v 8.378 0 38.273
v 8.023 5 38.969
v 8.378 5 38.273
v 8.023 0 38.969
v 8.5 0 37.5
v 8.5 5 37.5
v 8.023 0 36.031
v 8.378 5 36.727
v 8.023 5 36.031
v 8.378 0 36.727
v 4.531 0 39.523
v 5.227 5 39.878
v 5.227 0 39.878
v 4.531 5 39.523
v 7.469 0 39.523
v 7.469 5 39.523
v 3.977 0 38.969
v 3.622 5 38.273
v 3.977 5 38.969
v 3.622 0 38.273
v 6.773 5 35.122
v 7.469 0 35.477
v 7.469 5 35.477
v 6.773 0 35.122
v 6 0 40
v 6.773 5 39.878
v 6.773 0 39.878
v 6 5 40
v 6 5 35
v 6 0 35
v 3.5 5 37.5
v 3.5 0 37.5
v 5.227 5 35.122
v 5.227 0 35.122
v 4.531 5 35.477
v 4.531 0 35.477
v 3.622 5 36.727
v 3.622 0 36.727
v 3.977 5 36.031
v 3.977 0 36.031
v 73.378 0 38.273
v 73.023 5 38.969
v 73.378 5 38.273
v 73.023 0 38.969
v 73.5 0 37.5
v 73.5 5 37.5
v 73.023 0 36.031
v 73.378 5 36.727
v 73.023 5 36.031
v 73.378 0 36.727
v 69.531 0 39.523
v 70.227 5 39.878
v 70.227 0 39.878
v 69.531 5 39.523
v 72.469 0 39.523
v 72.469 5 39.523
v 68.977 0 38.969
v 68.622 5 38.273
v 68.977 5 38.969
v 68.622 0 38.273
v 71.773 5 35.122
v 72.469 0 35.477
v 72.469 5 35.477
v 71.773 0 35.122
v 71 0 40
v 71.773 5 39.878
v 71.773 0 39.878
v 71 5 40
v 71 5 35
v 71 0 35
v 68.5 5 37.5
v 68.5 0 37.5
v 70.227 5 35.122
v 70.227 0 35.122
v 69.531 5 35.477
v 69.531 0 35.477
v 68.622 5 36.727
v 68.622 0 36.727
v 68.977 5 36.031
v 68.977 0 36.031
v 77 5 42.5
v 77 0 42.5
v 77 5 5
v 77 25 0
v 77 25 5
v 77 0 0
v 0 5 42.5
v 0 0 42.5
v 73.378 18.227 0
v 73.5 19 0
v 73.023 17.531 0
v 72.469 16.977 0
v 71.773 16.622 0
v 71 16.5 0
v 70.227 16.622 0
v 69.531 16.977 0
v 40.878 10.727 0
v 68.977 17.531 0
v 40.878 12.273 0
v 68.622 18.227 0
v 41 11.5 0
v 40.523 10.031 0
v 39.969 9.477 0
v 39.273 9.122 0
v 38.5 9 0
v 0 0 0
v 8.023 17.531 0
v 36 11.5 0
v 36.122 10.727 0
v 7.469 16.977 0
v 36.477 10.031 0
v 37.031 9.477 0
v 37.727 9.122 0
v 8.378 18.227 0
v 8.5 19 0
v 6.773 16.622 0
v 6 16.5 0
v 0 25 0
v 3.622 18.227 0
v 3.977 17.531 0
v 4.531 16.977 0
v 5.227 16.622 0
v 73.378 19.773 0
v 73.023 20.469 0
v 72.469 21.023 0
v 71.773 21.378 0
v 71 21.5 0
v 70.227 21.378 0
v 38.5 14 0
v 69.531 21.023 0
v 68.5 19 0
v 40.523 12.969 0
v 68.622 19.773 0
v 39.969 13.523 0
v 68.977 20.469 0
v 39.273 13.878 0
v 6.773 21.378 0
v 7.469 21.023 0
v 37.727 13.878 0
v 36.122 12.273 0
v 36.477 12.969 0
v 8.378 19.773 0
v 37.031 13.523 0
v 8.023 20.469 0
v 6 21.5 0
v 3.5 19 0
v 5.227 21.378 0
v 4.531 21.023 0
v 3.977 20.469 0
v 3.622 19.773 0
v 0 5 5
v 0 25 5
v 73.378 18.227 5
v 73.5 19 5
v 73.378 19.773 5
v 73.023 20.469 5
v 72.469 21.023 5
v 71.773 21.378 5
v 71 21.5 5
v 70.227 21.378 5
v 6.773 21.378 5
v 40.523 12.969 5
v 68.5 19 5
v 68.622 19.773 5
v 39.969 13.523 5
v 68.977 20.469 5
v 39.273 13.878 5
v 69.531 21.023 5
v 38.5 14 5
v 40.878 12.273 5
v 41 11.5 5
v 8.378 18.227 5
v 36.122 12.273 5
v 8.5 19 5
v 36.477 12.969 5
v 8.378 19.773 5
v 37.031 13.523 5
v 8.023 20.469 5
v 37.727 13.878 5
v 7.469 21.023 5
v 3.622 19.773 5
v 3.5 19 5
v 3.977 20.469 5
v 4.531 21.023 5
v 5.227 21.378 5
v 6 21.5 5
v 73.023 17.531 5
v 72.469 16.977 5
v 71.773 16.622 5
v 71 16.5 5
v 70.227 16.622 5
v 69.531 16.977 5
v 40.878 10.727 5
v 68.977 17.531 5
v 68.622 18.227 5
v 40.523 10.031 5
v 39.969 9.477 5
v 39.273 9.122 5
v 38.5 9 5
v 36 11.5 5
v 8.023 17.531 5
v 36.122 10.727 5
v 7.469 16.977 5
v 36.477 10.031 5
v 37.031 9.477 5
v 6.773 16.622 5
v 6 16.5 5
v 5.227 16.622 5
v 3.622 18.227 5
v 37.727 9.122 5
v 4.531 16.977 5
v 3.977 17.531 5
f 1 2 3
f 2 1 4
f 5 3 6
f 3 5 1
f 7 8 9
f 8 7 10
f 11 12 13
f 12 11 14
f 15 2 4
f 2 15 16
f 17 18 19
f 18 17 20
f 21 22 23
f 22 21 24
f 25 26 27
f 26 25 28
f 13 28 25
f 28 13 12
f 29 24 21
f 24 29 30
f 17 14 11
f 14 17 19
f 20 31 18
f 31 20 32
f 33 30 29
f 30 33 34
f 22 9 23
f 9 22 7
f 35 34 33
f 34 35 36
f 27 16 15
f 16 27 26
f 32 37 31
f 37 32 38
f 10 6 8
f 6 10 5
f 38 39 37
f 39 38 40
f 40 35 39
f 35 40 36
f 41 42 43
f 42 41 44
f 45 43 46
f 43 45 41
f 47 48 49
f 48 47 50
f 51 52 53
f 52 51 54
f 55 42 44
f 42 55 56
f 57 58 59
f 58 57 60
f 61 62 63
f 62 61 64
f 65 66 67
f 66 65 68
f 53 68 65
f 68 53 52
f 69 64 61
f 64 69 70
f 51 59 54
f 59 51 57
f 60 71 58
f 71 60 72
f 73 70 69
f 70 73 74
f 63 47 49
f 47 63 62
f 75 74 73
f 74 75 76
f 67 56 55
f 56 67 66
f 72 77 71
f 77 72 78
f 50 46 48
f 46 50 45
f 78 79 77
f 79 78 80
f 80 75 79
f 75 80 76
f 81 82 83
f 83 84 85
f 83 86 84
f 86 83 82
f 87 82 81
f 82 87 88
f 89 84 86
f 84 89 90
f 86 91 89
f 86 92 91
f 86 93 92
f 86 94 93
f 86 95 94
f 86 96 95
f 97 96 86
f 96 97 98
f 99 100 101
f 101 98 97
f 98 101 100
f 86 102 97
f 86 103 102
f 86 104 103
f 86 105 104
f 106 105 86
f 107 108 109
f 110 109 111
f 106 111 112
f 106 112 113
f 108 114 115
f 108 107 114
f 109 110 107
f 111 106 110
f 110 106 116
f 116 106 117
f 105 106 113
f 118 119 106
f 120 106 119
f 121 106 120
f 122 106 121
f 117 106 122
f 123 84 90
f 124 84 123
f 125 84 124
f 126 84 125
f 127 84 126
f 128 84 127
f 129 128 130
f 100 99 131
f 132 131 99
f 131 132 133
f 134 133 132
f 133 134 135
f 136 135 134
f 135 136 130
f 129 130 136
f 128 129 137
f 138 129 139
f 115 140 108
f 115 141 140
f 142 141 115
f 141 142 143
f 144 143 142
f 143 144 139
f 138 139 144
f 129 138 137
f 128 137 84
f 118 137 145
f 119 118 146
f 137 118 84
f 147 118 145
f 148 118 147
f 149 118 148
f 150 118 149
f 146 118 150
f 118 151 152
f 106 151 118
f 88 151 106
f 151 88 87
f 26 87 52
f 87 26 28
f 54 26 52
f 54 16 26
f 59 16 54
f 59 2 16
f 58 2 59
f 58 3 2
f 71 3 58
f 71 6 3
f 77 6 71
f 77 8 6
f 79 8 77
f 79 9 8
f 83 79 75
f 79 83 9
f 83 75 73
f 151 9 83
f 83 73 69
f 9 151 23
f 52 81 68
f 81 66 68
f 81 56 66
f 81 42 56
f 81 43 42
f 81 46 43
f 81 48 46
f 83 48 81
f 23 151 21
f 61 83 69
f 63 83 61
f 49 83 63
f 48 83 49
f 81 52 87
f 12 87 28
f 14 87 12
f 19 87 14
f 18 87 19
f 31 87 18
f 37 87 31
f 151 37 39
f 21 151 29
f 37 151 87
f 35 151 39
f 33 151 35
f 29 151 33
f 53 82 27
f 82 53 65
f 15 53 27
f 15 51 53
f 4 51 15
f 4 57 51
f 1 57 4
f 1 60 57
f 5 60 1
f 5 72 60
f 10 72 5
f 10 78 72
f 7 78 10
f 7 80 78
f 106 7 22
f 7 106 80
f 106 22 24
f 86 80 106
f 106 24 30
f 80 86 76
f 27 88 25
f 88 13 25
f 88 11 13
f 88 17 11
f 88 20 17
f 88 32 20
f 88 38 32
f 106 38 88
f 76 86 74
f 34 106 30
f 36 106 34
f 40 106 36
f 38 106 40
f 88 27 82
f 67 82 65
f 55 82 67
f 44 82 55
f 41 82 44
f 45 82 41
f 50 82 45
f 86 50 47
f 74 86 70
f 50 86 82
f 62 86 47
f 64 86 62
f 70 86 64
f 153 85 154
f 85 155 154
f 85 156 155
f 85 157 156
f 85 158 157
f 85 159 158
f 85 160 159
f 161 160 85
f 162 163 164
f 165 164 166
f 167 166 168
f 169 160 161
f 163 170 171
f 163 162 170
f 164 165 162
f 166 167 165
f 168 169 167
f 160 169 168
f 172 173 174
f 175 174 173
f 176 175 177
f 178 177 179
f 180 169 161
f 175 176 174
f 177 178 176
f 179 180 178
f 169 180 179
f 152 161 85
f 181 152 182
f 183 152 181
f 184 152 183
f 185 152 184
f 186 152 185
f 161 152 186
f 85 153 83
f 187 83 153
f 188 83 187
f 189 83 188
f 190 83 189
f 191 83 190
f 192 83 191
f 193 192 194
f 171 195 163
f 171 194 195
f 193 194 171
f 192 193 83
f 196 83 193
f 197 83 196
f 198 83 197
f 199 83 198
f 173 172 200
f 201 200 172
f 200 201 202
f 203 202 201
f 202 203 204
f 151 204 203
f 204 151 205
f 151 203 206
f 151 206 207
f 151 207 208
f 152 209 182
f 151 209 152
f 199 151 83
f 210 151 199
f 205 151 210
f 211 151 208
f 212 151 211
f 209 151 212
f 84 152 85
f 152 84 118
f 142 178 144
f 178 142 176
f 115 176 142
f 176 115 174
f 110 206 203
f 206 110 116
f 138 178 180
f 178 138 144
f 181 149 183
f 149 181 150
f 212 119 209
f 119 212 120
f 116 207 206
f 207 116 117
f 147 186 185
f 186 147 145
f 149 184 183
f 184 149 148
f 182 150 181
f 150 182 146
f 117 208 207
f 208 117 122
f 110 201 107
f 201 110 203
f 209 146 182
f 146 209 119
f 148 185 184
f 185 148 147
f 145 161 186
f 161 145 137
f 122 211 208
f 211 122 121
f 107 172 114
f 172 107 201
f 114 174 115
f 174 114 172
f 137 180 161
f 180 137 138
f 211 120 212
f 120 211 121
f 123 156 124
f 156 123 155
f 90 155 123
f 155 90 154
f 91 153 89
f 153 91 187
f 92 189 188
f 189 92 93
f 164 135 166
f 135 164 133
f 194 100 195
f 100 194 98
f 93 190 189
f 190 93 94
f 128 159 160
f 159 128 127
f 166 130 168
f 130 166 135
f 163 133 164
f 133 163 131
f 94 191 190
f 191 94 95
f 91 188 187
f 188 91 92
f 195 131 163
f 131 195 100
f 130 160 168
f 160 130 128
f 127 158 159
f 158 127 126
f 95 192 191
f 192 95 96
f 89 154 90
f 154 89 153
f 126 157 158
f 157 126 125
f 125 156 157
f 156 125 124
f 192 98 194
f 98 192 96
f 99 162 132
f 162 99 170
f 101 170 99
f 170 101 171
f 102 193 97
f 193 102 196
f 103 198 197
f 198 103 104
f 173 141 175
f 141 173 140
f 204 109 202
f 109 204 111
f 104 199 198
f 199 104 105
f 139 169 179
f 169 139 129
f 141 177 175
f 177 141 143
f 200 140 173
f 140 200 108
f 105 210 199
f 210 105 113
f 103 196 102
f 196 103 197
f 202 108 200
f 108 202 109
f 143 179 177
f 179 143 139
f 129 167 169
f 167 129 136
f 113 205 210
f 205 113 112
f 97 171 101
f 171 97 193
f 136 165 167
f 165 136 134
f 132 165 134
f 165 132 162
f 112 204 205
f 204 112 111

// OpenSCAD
$fn = 20;

breite = 77;
lochbreite = 65;
lochhoehe = 35;
dicke = 5;
aussenabstand = 3.5;
quertiefe = 25;

difference() {
    union() {
        color("blue", 1.0) {
            cube([breite, dicke, lochhoehe + dicke*1.5]);
        }

        color("green", 1.0) {
            cube([breite, quertiefe, dicke]);
        }
    }
    union() {
        translate([0, 0, lochhoehe]) {
            translate([dicke/2+aussenabstand, 0, dicke/2])
            rotate([90, 0, 0]) cylinder(20, d=dicke, center=true);

            translate([dicke/2+aussenabstand + lochbreite, 0, dicke/2])
            rotate([90, 0, 0]) cylinder(20, d=dicke, center=true);
        }

        translate([dicke/2+aussenabstand, (-1*dicke/2)-aussenabstand+quertiefe, 0])
        cylinder(20, d=dicke, center=true);

        translate([dicke/2+aussenabstand+lochbreite, (-1*dicke/2)-aussenabstand+quertiefe, 0])
        cylinder(20, d=dicke, center=true);
        
        translate([dicke/2+aussenabstand+lochbreite/2, (-1*dicke/2)-aussenabstand+quertiefe*0.7, 0])
        cylinder(20, d=dicke, center=true);
    }
}
